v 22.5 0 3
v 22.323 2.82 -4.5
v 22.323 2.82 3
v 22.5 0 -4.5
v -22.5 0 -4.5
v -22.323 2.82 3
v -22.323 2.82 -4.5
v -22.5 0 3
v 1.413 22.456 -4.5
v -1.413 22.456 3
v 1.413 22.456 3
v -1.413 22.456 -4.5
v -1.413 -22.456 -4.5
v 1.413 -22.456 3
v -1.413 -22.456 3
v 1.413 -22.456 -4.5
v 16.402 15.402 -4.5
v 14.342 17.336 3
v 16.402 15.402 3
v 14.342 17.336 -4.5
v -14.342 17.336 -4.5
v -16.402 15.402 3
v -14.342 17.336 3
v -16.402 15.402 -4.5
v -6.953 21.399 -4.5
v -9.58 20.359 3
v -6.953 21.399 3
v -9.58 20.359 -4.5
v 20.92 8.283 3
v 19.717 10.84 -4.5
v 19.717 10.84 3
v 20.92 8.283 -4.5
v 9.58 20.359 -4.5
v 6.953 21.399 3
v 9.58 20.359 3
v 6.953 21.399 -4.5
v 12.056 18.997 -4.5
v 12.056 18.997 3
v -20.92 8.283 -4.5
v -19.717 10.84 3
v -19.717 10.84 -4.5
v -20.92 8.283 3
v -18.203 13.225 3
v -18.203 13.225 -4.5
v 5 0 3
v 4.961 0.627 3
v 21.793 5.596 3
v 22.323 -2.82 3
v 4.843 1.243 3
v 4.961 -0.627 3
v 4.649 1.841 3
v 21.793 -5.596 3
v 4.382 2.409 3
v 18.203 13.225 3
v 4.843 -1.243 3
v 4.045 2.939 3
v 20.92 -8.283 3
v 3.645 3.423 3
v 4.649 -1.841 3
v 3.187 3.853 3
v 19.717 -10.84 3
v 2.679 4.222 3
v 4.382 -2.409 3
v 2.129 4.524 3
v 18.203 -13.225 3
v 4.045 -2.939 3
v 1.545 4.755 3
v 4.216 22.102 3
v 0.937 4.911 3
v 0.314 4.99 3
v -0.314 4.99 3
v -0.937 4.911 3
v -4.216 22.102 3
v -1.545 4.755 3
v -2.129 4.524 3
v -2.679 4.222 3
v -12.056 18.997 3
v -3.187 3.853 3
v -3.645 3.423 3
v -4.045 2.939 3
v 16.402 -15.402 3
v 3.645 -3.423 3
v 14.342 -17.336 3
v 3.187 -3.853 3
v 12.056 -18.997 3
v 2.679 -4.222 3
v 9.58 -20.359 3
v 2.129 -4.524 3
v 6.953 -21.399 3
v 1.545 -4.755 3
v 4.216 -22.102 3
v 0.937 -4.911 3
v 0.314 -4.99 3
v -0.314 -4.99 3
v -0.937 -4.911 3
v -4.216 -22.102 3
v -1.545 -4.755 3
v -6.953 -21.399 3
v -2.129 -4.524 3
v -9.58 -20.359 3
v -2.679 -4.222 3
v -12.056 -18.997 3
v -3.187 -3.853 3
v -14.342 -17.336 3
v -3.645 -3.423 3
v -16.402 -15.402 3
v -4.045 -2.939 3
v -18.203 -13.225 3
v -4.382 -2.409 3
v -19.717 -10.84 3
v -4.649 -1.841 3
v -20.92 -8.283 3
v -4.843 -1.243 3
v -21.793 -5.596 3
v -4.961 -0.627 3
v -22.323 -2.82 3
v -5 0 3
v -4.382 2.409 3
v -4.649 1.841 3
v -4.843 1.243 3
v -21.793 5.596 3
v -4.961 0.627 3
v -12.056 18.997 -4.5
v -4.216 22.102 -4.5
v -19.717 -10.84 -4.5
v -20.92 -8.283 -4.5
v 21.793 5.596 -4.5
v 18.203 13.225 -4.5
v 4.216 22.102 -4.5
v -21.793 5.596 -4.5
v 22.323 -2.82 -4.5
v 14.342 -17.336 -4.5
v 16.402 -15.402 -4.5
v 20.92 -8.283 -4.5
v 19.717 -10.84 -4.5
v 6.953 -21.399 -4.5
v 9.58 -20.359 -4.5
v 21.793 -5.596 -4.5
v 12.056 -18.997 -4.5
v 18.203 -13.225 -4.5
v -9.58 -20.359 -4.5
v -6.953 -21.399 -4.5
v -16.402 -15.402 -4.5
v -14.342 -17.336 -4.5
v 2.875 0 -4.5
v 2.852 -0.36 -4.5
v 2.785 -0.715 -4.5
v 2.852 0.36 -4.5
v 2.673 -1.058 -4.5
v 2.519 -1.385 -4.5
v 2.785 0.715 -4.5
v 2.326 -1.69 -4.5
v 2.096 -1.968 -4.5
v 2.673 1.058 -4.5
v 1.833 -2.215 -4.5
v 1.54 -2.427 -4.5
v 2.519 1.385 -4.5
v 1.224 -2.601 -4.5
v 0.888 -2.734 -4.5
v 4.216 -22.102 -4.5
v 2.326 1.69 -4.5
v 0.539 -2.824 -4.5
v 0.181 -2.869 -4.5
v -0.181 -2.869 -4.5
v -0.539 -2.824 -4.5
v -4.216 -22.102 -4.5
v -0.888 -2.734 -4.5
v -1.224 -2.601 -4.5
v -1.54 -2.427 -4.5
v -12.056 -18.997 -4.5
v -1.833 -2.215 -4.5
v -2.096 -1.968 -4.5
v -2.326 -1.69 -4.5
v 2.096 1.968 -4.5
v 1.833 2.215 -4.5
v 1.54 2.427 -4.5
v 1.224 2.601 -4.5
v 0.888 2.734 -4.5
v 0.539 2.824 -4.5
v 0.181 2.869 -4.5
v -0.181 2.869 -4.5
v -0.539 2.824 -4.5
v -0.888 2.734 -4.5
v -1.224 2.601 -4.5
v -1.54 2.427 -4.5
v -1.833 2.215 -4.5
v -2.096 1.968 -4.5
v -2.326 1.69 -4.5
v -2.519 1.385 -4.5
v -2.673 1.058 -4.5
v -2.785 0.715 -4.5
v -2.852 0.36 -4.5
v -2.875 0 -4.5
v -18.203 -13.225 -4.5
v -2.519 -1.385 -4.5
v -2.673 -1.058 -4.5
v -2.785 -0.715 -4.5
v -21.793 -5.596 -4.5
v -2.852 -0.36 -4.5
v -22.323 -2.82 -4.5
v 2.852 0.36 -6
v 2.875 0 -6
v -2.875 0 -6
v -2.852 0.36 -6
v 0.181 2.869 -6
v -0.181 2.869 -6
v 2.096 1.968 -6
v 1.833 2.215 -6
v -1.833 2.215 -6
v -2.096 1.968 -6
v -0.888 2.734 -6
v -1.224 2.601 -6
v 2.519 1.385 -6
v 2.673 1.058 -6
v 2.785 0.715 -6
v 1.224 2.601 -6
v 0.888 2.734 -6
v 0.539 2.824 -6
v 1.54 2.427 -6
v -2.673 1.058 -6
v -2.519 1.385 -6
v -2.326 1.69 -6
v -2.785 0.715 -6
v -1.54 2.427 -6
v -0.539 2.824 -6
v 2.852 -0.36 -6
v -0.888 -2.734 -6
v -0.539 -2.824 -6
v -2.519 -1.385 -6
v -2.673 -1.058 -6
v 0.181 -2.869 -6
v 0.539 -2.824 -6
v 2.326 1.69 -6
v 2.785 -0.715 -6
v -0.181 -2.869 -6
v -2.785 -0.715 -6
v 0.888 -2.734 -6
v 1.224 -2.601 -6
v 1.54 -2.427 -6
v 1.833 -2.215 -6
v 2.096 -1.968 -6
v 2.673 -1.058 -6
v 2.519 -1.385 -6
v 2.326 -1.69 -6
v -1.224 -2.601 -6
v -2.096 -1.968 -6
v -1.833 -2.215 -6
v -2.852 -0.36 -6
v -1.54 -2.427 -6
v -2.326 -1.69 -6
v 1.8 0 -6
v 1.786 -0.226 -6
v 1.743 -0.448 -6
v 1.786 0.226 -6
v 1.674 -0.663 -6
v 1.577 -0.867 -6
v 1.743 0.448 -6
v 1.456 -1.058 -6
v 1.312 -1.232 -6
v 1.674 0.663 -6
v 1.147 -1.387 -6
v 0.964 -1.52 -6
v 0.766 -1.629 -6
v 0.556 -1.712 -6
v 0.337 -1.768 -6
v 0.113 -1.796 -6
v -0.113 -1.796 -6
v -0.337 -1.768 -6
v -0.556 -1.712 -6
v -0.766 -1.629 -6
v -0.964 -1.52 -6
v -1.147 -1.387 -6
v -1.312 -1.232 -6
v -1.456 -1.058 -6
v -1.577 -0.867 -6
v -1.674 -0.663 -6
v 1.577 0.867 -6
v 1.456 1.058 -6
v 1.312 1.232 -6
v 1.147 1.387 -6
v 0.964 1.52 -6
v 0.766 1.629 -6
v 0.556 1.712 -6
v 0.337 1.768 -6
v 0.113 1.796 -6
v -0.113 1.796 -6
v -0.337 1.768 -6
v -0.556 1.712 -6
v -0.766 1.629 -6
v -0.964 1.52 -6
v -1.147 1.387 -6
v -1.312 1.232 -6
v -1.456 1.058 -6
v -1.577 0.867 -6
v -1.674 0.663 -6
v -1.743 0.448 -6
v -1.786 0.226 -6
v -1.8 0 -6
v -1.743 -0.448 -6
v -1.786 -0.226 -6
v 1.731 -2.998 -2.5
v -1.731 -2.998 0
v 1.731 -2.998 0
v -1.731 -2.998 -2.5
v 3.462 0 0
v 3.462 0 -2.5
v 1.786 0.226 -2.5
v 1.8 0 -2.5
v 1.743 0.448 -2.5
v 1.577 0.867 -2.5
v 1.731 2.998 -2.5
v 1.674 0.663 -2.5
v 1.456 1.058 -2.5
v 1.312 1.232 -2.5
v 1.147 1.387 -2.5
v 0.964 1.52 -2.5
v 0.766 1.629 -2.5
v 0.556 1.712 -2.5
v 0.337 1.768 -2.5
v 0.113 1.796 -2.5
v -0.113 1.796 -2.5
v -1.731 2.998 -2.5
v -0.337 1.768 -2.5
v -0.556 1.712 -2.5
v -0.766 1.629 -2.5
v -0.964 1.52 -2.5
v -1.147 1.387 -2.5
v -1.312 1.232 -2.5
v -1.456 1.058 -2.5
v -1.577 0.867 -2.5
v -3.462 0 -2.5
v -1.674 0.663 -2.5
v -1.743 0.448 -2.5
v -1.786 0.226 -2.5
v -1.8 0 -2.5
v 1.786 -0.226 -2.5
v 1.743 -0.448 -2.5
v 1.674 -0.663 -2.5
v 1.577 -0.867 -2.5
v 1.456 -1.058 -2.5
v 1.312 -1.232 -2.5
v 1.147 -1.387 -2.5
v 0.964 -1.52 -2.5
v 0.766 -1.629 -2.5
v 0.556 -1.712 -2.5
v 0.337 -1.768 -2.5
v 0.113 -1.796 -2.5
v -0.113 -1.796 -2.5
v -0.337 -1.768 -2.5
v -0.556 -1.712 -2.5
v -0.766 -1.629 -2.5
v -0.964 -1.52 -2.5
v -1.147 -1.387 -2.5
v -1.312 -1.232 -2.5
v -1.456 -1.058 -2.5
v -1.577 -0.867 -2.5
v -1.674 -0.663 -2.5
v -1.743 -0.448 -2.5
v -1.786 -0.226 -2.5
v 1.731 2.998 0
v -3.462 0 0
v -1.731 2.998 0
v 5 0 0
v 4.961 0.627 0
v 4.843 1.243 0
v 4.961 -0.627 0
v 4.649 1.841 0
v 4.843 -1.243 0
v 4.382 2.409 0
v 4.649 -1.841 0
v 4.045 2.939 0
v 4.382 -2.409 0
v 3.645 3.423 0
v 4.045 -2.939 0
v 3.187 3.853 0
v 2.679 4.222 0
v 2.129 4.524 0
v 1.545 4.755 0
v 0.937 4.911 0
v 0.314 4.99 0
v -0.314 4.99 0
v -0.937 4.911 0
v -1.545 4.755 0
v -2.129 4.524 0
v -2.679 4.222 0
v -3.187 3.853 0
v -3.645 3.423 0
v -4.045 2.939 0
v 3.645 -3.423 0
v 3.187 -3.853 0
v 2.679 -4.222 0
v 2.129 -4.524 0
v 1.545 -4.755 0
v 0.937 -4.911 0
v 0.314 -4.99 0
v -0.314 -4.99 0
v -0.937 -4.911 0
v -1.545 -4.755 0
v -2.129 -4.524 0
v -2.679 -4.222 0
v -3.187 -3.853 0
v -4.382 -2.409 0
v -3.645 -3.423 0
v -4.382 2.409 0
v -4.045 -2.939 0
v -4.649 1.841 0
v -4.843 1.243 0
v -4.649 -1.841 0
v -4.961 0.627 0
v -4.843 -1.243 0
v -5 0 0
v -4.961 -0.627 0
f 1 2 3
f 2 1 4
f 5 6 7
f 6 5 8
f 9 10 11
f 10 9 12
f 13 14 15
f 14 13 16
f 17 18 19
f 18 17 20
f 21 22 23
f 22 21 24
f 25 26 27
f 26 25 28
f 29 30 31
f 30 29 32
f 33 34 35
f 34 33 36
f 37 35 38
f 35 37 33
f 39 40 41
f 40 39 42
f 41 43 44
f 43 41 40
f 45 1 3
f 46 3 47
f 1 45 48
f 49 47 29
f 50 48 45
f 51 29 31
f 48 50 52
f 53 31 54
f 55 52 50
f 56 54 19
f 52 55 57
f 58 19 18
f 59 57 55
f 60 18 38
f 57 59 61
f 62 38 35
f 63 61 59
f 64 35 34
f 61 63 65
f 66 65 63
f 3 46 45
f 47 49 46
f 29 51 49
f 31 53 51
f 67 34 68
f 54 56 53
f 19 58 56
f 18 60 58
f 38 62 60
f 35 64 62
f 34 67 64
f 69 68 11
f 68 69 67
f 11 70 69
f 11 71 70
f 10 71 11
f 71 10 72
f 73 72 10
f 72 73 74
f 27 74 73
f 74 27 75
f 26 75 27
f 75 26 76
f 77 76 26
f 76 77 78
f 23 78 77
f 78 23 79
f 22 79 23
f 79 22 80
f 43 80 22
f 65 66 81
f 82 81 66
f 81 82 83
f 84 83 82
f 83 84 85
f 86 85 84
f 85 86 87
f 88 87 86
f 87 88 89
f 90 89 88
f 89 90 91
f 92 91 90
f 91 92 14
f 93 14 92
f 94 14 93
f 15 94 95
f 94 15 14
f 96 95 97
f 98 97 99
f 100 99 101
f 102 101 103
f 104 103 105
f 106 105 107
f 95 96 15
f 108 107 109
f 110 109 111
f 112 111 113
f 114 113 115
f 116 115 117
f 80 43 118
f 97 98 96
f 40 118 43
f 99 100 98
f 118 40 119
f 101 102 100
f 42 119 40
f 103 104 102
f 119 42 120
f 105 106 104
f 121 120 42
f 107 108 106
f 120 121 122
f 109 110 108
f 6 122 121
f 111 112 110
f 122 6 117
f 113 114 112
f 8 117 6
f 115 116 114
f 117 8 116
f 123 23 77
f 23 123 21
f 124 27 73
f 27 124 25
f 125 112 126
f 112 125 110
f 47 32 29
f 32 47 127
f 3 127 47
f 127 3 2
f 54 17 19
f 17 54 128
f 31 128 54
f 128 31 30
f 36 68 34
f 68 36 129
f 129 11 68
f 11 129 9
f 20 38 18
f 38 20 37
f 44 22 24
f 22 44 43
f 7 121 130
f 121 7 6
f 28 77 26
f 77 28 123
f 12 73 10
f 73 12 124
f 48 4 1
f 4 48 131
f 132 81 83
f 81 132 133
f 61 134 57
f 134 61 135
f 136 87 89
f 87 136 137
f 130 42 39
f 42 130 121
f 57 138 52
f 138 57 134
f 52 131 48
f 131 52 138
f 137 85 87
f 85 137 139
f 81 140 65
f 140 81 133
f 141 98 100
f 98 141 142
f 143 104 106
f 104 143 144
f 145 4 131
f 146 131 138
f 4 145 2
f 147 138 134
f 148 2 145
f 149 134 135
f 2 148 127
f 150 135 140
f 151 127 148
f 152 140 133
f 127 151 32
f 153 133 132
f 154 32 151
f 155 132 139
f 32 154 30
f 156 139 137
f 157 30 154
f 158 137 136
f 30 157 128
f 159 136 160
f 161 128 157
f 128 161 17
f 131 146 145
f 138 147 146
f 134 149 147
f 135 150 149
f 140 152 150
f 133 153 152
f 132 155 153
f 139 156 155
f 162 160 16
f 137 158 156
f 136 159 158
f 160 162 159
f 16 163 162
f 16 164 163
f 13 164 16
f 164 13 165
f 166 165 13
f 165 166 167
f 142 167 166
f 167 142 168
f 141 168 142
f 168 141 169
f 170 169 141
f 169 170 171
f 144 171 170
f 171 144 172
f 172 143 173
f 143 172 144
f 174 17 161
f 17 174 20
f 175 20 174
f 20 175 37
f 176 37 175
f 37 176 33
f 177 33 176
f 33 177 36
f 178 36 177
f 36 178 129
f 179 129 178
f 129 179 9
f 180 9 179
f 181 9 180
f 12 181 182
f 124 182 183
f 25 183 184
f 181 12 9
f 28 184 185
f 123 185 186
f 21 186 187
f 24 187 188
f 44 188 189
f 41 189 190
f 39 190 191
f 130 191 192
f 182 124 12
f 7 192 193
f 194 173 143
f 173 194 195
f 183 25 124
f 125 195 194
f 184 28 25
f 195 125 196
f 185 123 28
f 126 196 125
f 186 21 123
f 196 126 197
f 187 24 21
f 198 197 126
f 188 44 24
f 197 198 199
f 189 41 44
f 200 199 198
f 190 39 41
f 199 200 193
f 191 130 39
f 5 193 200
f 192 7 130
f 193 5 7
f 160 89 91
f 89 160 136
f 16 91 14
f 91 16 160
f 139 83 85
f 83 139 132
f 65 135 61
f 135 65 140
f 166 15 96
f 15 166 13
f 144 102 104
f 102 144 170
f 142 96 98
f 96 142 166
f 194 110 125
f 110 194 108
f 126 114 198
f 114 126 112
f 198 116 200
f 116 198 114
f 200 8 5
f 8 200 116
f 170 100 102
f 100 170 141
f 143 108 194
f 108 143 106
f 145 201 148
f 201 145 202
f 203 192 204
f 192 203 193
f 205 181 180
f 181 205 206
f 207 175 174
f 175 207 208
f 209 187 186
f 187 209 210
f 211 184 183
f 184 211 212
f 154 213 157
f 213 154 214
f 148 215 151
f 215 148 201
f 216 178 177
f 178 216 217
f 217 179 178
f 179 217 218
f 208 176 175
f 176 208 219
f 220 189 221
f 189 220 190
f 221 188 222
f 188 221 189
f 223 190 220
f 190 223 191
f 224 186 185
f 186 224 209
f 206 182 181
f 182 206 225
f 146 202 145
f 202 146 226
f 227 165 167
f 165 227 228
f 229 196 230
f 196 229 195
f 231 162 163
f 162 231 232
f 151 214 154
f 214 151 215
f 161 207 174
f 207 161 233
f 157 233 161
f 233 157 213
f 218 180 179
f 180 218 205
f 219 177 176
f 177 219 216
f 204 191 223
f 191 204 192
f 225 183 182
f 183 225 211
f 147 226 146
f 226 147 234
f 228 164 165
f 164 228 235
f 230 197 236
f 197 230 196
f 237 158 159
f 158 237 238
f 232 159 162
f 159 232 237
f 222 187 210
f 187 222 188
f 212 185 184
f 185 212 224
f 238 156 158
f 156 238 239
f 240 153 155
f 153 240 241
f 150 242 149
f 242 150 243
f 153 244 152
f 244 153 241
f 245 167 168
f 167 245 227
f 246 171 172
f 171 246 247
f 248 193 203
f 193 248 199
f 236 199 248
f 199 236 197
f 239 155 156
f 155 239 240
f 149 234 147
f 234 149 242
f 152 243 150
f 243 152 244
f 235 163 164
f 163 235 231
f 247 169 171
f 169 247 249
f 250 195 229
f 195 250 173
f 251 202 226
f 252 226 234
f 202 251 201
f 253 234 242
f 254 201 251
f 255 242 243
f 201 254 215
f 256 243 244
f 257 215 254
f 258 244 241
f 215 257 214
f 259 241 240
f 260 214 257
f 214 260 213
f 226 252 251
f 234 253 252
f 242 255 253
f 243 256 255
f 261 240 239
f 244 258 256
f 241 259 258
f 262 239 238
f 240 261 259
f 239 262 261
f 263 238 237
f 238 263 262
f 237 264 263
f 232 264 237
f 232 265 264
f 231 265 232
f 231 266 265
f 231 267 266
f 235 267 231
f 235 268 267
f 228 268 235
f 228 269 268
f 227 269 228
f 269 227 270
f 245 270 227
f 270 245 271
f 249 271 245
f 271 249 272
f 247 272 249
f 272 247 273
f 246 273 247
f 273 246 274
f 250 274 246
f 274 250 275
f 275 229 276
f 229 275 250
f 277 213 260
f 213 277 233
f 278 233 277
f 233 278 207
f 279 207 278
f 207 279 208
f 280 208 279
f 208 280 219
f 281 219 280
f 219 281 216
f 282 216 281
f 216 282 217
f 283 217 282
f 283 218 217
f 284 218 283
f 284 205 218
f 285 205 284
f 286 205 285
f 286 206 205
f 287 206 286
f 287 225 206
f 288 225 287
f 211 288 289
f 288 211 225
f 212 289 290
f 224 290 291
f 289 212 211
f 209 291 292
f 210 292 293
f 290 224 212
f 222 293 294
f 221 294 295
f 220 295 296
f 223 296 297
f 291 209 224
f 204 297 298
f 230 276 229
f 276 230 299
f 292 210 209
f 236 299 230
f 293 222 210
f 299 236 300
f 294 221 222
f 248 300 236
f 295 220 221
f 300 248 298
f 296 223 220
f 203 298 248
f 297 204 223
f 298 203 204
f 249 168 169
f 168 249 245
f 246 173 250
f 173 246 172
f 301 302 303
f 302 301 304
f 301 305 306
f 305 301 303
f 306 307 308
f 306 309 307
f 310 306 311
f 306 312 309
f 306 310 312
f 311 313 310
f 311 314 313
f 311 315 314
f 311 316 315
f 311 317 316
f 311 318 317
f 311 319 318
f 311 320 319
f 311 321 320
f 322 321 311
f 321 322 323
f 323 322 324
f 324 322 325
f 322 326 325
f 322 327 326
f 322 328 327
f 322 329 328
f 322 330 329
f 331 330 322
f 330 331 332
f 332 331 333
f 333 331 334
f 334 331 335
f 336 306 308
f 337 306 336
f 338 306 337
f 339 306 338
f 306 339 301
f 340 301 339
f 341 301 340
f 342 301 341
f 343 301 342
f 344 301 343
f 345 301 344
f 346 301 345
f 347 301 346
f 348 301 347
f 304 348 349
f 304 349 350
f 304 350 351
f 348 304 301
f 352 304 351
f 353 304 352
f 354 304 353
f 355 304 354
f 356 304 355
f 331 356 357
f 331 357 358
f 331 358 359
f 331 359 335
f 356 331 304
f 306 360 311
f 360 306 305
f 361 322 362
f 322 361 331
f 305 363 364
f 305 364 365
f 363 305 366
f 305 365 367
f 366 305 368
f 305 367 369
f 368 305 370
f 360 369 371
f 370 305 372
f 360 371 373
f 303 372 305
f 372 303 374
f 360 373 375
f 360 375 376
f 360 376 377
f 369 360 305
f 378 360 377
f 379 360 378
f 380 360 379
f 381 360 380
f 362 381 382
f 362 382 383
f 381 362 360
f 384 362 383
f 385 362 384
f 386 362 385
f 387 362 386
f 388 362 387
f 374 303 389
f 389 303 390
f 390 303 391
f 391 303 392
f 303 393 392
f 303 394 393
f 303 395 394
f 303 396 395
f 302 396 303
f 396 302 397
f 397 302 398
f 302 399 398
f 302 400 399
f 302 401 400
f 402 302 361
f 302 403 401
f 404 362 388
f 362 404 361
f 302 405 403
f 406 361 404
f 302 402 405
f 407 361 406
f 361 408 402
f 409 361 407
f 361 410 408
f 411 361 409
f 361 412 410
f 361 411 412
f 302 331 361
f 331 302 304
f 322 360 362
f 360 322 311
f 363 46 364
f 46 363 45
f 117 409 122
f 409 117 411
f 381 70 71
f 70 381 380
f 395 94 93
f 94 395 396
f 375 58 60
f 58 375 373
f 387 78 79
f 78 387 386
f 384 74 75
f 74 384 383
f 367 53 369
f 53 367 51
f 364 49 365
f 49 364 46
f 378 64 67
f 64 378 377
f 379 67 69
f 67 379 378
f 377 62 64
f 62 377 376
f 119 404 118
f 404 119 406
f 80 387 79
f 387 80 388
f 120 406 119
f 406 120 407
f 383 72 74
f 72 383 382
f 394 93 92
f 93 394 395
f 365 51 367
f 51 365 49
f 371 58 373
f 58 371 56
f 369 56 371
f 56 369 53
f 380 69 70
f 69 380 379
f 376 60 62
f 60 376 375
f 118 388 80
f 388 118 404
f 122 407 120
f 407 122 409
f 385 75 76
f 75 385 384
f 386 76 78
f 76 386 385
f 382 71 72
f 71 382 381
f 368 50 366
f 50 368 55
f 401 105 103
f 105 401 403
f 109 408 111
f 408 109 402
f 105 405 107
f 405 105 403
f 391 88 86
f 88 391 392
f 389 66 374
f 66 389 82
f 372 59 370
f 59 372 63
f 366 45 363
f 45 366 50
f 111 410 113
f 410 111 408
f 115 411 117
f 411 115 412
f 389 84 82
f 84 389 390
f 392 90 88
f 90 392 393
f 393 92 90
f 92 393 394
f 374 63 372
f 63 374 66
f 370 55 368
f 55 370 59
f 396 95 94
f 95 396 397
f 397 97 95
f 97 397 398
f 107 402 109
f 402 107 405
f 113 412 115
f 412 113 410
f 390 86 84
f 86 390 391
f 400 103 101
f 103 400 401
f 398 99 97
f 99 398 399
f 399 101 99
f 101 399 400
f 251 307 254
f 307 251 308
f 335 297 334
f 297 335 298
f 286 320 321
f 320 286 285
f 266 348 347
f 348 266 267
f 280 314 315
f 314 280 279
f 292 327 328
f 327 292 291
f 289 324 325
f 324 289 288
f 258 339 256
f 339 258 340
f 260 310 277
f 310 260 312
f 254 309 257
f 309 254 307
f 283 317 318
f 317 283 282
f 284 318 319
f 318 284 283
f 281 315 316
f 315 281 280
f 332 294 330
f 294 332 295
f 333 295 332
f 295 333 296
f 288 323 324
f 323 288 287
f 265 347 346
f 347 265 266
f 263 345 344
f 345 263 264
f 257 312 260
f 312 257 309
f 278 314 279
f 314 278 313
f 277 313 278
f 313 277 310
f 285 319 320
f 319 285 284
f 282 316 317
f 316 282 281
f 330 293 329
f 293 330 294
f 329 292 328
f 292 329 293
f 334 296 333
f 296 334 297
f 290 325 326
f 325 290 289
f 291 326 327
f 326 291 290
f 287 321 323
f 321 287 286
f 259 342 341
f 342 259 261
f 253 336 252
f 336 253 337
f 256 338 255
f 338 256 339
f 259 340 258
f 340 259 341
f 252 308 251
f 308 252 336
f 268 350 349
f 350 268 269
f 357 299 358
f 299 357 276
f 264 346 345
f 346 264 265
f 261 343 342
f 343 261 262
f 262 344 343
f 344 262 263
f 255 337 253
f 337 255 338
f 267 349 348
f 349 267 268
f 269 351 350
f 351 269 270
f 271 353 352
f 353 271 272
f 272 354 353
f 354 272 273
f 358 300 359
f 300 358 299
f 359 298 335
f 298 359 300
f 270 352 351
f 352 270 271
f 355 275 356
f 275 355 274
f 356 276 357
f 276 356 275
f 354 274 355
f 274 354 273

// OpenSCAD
$fn = 50;

difference() {
	union() {
		translate(v = [0, 0, -4.5]) {
			cylinder(h = 7.5, r = 22.5);
		}
		#translate(v = [0, 0, -6.0]) {
			cylinder(h = 6, r = 2.875);
		}
	}
	union() {
		translate(v = [0, 0, 0]) {
			rotate(a = [0, 0, 0]) {
				difference() {
					union() {
						translate(v = [0, 0, -2.5]) {
							linear_extrude(height = 2.5) {
								polygon(points = [[3.4619999999999997, 0.0], [1.7310000000000003, 2.9981799479017264], [-1.7309999999999992, 2.9981799479017264], [-3.4619999999999997, 4.2397272186481365e-16], [-1.7310000000000014, -2.998179947901726], [1.7309999999999977, -2.9981799479017277]]);
							}
						}
					}
					union();
				}
			}
		}
		#cylinder(h = 3, r = 5.0);
		#translate(v = [0, 0, -100.0]) {
			cylinder(h = 200, r = 1.8);
		}
	}
}
